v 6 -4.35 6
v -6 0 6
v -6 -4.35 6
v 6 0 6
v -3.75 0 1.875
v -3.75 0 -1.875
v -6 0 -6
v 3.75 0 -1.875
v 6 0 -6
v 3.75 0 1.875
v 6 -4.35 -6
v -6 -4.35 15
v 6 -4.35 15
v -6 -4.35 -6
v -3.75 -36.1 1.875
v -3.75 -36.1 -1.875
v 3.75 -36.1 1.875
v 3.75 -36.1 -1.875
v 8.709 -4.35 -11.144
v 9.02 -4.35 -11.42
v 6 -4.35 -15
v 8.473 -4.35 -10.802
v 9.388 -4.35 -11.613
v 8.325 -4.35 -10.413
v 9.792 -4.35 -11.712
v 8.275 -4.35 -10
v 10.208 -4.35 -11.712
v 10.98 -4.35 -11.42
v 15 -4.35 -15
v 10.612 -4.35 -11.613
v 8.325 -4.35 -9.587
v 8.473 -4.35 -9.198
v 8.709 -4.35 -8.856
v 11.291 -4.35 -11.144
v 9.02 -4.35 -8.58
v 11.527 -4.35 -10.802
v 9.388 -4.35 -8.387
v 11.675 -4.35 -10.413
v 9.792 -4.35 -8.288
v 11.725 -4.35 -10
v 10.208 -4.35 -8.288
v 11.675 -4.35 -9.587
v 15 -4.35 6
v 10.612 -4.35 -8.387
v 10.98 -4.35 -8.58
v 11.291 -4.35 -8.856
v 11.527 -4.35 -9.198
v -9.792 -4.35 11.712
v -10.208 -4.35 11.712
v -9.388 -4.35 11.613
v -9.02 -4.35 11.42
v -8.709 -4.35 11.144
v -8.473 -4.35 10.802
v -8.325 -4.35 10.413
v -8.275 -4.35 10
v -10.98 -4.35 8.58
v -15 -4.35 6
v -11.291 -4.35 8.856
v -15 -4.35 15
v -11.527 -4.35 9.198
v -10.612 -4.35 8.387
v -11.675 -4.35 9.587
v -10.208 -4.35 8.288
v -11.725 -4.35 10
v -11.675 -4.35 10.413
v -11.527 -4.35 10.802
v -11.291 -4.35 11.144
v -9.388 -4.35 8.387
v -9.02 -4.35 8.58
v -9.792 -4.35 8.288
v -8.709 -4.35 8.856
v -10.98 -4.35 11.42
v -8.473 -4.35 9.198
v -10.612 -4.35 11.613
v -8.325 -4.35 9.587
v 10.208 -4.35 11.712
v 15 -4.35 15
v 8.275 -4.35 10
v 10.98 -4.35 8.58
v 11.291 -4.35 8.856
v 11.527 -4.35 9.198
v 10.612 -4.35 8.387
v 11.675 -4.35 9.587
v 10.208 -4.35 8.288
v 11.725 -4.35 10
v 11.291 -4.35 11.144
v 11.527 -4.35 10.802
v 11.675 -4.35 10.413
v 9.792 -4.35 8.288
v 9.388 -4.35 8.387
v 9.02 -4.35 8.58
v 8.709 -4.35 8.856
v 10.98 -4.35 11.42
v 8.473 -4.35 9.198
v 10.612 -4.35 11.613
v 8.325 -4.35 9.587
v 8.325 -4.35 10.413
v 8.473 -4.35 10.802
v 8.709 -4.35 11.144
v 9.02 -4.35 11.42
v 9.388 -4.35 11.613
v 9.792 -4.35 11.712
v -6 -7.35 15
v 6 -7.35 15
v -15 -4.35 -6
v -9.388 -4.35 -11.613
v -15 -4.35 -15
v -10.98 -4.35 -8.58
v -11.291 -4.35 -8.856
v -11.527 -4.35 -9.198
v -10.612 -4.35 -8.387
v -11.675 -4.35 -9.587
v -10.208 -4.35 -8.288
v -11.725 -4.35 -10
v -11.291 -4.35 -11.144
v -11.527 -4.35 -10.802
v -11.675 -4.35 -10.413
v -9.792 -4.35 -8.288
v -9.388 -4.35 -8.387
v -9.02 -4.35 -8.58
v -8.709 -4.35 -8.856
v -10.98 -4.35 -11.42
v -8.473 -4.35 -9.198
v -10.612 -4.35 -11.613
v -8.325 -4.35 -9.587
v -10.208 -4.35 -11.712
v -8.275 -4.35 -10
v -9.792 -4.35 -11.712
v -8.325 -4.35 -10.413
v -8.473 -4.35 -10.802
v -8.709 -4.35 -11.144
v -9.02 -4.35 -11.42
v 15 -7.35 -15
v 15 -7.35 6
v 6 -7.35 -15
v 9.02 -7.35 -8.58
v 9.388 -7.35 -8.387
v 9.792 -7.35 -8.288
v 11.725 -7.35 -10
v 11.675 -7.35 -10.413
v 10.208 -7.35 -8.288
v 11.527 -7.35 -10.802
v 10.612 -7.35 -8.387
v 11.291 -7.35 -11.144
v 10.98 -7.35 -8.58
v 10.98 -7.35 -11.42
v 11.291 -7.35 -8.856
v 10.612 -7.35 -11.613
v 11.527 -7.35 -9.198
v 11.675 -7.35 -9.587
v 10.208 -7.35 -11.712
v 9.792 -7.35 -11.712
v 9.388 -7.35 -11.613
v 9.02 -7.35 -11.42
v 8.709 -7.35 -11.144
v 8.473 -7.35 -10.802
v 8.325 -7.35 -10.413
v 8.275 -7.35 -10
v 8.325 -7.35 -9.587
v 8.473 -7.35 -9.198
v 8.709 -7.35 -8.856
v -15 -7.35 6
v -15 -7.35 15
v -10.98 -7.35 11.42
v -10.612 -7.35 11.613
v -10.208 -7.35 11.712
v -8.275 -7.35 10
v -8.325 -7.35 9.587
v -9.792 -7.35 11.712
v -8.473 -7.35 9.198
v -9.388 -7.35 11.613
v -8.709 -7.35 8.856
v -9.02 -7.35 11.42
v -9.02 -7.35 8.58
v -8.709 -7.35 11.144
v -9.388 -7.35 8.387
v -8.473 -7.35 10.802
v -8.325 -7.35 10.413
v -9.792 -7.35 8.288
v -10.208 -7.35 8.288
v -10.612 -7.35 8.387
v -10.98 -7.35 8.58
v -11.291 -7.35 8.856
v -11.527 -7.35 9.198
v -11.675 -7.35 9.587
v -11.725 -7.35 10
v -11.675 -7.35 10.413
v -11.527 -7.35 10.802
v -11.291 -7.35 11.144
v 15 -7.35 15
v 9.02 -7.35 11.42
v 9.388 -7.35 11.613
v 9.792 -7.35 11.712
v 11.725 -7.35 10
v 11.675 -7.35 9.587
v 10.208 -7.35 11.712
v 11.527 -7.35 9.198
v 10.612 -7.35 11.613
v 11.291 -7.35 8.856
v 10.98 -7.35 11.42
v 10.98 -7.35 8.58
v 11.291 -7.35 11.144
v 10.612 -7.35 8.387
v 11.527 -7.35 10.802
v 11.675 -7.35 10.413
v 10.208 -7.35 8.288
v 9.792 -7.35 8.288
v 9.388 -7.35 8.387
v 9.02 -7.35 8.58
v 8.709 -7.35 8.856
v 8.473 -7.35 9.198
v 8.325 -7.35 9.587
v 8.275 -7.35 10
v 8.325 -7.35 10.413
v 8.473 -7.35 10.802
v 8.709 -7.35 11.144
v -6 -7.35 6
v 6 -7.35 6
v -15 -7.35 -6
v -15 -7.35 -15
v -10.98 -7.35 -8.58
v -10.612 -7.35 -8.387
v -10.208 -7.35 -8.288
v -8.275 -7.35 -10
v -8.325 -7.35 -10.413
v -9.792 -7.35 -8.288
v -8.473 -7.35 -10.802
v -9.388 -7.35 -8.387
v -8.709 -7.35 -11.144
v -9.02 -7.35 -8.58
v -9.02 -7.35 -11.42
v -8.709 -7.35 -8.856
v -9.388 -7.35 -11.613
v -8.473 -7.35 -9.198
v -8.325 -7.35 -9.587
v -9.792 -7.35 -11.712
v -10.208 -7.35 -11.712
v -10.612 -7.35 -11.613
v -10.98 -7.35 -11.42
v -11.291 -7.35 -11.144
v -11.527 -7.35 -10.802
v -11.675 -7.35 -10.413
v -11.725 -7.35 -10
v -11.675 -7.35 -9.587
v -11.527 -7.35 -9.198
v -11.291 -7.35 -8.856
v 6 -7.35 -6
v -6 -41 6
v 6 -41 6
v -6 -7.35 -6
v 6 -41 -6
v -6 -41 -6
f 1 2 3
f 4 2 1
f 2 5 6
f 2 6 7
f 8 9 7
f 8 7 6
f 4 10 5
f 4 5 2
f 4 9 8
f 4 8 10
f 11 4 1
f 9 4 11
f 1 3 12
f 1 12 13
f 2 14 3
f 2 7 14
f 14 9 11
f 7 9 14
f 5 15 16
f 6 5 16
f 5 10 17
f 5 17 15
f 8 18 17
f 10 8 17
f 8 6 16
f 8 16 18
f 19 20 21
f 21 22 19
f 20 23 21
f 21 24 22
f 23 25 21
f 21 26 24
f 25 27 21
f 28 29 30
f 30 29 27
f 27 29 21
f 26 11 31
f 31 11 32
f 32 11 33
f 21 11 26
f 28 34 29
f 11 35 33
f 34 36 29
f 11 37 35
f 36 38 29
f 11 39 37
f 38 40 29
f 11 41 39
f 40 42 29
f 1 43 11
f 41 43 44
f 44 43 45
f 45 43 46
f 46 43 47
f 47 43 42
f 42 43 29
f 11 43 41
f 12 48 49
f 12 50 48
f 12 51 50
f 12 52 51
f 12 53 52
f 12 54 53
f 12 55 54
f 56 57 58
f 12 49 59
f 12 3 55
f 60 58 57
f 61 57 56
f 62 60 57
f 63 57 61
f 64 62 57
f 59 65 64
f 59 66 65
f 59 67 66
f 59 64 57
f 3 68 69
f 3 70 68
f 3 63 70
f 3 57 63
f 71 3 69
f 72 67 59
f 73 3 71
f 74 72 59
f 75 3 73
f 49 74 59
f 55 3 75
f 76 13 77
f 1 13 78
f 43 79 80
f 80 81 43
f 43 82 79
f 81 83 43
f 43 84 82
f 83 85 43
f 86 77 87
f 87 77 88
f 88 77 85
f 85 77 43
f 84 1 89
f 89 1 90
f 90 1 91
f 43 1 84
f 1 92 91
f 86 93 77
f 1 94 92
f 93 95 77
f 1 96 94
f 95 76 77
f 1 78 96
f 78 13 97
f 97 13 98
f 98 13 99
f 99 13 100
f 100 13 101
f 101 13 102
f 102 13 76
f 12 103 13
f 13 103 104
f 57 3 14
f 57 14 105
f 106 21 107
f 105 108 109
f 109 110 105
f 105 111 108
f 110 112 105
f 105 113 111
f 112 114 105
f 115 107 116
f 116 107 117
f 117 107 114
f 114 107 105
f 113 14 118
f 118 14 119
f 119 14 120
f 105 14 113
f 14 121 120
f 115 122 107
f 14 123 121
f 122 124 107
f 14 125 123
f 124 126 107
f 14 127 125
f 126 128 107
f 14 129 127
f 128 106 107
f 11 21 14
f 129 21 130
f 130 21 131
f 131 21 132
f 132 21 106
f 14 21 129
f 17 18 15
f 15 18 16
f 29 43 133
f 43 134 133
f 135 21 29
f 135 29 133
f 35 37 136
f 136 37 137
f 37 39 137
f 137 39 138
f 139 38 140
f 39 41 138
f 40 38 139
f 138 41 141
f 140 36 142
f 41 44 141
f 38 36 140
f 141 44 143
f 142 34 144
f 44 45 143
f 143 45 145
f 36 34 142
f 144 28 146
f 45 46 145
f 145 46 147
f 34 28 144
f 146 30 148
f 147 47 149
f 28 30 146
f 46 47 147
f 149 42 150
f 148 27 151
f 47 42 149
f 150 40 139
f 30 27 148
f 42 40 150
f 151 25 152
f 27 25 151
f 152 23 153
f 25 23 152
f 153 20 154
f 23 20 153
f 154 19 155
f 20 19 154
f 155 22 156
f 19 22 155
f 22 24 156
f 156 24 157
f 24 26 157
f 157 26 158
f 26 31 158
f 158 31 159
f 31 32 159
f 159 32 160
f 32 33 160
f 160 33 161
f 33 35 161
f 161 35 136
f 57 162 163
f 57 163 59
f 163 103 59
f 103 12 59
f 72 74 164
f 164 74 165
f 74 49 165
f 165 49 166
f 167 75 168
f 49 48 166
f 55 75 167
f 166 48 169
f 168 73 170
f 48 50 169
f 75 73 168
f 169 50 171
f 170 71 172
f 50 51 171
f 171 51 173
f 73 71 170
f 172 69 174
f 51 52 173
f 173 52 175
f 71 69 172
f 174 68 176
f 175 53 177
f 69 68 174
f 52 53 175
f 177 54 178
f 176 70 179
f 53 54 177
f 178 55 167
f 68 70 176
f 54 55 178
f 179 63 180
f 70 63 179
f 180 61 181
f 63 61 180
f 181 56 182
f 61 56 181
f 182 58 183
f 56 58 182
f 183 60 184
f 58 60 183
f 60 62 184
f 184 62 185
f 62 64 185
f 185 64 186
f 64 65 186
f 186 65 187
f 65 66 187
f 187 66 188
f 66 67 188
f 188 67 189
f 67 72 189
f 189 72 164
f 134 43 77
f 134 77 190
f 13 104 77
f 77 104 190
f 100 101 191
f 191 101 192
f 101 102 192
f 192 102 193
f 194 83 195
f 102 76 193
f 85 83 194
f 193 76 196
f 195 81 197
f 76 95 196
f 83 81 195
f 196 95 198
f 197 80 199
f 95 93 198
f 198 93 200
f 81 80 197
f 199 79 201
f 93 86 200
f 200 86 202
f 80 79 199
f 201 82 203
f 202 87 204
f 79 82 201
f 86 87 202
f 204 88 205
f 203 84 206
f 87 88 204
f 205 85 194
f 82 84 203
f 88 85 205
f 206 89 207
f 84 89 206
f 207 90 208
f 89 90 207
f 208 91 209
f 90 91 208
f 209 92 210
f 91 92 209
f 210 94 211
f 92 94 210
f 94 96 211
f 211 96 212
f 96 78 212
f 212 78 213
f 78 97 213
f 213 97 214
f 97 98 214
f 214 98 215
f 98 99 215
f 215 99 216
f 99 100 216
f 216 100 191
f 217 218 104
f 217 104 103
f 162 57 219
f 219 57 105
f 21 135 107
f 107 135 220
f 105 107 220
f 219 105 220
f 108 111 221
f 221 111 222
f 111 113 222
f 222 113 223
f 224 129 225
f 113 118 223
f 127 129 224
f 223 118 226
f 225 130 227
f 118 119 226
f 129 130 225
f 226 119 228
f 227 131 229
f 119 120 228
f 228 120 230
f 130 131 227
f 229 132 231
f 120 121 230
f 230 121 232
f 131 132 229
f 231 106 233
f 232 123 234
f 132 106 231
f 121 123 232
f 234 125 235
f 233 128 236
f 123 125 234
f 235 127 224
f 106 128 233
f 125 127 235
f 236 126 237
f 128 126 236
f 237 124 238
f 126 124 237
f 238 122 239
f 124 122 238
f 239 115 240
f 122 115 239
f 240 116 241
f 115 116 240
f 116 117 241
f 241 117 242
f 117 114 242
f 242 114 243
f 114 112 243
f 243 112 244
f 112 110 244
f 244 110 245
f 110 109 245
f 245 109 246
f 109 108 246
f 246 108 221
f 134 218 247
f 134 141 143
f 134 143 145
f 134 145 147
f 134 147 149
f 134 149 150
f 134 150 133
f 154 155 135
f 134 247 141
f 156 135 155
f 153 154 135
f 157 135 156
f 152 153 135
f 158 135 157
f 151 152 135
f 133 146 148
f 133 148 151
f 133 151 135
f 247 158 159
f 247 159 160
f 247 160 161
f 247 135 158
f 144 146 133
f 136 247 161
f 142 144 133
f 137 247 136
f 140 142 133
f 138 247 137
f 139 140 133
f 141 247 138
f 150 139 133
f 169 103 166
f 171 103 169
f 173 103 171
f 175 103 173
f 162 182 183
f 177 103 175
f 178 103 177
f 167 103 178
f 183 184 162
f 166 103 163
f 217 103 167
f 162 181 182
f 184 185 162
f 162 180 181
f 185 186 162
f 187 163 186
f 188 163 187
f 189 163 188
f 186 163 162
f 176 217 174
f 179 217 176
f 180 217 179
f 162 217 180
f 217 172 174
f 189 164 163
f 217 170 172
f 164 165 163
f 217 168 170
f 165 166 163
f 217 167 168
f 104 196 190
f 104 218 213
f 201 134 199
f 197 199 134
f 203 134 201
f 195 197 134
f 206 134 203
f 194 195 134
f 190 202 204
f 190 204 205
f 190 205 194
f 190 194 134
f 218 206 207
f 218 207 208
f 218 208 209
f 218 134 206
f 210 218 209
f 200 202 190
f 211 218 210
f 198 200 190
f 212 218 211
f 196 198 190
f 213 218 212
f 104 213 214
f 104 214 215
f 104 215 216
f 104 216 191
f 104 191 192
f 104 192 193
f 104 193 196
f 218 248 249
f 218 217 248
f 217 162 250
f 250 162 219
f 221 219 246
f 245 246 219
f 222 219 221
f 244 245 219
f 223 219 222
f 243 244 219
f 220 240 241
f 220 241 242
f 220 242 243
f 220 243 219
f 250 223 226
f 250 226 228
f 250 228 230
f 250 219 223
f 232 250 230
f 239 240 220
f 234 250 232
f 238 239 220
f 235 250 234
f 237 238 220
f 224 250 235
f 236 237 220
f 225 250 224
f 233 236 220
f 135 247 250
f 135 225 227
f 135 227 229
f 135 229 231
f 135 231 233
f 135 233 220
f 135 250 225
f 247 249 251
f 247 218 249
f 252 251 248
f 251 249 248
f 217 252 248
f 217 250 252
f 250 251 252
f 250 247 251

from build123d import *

# Parameters (mm, degrees)
SKETCH_W        = 12
SKETCH_H        = 12
PAD_DEPTH       = 41
SKETCH001_W     = 7.5
SKETCH001_H     = 3.75
POCKET_DEPTH    = 36.1
SKETCH003_W     = 12
SKETCH003_H     = 3
PAD001_DEPTH    = 9
PAD001_FACE11_W = 3
PAD001_FACE11_H = 9
PAD002_DEPTH    = 9
PAD002_FACE11_W = 3
PAD002_FACE11_H = 9
PAD003_DEPTH    = 21
PAD003_FACE17_W = 3
PAD003_FACE17_H = 9
PAD004_DEPTH    = 21
PAD004_FACE12_W = 3
PAD004_FACE12_H = 9
PAD005_DEPTH    = 9
PAD005_FACE17_W = 3
PAD005_FACE17_H = 9
PAD006_DEPTH    = 12
SKETCH004_R     = 1.725
POCKET001_DEPTH = 36.651


with BuildPart() as part:
    # Sketch → Pad (new body)
    with BuildSketch(Plane.XZ):
        Rectangle(SKETCH_W, SKETCH_H)
    extrude(amount=PAD_DEPTH)

    # Sketch001 (on Face5 of Pad) → Pocket (cut)
    with BuildSketch(Plane(origin=(0, 0, 0), x_dir=(1, 0, 0), z_dir=(0, 1, 0))):
        Rectangle(SKETCH001_W, SKETCH001_H)
    extrude(amount=-POCKET_DEPTH, mode=Mode.SUBTRACT)

    # Sketch003 (on Face1 of Pocket) → Pad001 (join)
    with BuildSketch(Plane(origin=(0, 0, 6), x_dir=(-1, 0, 0), z_dir=(0, 0, 1))):
        with Locations((0, 5.85)):
            Rectangle(SKETCH003_W, SKETCH003_H)
    extrude(amount=PAD001_DEPTH)

    # Pad001 Face11 → Pad002 (add)
    with BuildSketch(Plane(origin=(6, -5.85, 10.5), x_dir=(0, -1, 0), z_dir=(1, 0, 0))):
        Rectangle(PAD001_FACE11_W, PAD001_FACE11_H)
    extrude(amount=PAD002_DEPTH)

    # Pad002 Face11 → Pad003 (add)
    with BuildSketch(Plane(origin=(10.5, -5.85, 6), x_dir=(0, -1, 0), z_dir=(0, 0, -1))):
        Rectangle(PAD002_FACE11_W, PAD002_FACE11_H)
    extrude(amount=PAD003_DEPTH)

    # Pad003 Face17 → Pad004 (add)
    with BuildSketch(Plane(origin=(6, -5.85, -10.5), x_dir=(0, 1, 0), z_dir=(-1, 0, 0))):
        Rectangle(PAD003_FACE17_W, PAD003_FACE17_H)
    extrude(amount=PAD004_DEPTH)

    # Pad004 Face12 → Pad005 (add)
    with BuildSketch(Plane(origin=(-6, -5.85, 10.5), x_dir=(0, 1, 0), z_dir=(-1, 0, 0))):
        Rectangle(PAD004_FACE12_W, PAD004_FACE12_H)
    extrude(amount=PAD005_DEPTH)

    # Pad005 Face17 → Pad006 (add)
    with BuildSketch(Plane(origin=(-10.5, -5.85, 6), x_dir=(0, -1, 0), z_dir=(0, 0, -1))):
        Rectangle(PAD005_FACE17_W, PAD005_FACE17_H)
    extrude(amount=PAD006_DEPTH)

    # Sketch004 (on Face13 of Pad006) → Pocket001 (cut, through all)
    with BuildSketch(Plane(origin=(0, -4.35, 0), x_dir=(1, 0, 0), z_dir=(0, 1, 0))):
        with Locations((-10, 10)):
            Circle(SKETCH004_R)
        with Locations((10, 10)):
            Circle(SKETCH004_R)
        with Locations((10, -10)):
            Circle(SKETCH004_R)
        with Locations((-10, -10)):
            Circle(SKETCH004_R)
    extrude(amount=-POCKET001_DEPTH, mode=Mode.SUBTRACT)


solid = part.part
